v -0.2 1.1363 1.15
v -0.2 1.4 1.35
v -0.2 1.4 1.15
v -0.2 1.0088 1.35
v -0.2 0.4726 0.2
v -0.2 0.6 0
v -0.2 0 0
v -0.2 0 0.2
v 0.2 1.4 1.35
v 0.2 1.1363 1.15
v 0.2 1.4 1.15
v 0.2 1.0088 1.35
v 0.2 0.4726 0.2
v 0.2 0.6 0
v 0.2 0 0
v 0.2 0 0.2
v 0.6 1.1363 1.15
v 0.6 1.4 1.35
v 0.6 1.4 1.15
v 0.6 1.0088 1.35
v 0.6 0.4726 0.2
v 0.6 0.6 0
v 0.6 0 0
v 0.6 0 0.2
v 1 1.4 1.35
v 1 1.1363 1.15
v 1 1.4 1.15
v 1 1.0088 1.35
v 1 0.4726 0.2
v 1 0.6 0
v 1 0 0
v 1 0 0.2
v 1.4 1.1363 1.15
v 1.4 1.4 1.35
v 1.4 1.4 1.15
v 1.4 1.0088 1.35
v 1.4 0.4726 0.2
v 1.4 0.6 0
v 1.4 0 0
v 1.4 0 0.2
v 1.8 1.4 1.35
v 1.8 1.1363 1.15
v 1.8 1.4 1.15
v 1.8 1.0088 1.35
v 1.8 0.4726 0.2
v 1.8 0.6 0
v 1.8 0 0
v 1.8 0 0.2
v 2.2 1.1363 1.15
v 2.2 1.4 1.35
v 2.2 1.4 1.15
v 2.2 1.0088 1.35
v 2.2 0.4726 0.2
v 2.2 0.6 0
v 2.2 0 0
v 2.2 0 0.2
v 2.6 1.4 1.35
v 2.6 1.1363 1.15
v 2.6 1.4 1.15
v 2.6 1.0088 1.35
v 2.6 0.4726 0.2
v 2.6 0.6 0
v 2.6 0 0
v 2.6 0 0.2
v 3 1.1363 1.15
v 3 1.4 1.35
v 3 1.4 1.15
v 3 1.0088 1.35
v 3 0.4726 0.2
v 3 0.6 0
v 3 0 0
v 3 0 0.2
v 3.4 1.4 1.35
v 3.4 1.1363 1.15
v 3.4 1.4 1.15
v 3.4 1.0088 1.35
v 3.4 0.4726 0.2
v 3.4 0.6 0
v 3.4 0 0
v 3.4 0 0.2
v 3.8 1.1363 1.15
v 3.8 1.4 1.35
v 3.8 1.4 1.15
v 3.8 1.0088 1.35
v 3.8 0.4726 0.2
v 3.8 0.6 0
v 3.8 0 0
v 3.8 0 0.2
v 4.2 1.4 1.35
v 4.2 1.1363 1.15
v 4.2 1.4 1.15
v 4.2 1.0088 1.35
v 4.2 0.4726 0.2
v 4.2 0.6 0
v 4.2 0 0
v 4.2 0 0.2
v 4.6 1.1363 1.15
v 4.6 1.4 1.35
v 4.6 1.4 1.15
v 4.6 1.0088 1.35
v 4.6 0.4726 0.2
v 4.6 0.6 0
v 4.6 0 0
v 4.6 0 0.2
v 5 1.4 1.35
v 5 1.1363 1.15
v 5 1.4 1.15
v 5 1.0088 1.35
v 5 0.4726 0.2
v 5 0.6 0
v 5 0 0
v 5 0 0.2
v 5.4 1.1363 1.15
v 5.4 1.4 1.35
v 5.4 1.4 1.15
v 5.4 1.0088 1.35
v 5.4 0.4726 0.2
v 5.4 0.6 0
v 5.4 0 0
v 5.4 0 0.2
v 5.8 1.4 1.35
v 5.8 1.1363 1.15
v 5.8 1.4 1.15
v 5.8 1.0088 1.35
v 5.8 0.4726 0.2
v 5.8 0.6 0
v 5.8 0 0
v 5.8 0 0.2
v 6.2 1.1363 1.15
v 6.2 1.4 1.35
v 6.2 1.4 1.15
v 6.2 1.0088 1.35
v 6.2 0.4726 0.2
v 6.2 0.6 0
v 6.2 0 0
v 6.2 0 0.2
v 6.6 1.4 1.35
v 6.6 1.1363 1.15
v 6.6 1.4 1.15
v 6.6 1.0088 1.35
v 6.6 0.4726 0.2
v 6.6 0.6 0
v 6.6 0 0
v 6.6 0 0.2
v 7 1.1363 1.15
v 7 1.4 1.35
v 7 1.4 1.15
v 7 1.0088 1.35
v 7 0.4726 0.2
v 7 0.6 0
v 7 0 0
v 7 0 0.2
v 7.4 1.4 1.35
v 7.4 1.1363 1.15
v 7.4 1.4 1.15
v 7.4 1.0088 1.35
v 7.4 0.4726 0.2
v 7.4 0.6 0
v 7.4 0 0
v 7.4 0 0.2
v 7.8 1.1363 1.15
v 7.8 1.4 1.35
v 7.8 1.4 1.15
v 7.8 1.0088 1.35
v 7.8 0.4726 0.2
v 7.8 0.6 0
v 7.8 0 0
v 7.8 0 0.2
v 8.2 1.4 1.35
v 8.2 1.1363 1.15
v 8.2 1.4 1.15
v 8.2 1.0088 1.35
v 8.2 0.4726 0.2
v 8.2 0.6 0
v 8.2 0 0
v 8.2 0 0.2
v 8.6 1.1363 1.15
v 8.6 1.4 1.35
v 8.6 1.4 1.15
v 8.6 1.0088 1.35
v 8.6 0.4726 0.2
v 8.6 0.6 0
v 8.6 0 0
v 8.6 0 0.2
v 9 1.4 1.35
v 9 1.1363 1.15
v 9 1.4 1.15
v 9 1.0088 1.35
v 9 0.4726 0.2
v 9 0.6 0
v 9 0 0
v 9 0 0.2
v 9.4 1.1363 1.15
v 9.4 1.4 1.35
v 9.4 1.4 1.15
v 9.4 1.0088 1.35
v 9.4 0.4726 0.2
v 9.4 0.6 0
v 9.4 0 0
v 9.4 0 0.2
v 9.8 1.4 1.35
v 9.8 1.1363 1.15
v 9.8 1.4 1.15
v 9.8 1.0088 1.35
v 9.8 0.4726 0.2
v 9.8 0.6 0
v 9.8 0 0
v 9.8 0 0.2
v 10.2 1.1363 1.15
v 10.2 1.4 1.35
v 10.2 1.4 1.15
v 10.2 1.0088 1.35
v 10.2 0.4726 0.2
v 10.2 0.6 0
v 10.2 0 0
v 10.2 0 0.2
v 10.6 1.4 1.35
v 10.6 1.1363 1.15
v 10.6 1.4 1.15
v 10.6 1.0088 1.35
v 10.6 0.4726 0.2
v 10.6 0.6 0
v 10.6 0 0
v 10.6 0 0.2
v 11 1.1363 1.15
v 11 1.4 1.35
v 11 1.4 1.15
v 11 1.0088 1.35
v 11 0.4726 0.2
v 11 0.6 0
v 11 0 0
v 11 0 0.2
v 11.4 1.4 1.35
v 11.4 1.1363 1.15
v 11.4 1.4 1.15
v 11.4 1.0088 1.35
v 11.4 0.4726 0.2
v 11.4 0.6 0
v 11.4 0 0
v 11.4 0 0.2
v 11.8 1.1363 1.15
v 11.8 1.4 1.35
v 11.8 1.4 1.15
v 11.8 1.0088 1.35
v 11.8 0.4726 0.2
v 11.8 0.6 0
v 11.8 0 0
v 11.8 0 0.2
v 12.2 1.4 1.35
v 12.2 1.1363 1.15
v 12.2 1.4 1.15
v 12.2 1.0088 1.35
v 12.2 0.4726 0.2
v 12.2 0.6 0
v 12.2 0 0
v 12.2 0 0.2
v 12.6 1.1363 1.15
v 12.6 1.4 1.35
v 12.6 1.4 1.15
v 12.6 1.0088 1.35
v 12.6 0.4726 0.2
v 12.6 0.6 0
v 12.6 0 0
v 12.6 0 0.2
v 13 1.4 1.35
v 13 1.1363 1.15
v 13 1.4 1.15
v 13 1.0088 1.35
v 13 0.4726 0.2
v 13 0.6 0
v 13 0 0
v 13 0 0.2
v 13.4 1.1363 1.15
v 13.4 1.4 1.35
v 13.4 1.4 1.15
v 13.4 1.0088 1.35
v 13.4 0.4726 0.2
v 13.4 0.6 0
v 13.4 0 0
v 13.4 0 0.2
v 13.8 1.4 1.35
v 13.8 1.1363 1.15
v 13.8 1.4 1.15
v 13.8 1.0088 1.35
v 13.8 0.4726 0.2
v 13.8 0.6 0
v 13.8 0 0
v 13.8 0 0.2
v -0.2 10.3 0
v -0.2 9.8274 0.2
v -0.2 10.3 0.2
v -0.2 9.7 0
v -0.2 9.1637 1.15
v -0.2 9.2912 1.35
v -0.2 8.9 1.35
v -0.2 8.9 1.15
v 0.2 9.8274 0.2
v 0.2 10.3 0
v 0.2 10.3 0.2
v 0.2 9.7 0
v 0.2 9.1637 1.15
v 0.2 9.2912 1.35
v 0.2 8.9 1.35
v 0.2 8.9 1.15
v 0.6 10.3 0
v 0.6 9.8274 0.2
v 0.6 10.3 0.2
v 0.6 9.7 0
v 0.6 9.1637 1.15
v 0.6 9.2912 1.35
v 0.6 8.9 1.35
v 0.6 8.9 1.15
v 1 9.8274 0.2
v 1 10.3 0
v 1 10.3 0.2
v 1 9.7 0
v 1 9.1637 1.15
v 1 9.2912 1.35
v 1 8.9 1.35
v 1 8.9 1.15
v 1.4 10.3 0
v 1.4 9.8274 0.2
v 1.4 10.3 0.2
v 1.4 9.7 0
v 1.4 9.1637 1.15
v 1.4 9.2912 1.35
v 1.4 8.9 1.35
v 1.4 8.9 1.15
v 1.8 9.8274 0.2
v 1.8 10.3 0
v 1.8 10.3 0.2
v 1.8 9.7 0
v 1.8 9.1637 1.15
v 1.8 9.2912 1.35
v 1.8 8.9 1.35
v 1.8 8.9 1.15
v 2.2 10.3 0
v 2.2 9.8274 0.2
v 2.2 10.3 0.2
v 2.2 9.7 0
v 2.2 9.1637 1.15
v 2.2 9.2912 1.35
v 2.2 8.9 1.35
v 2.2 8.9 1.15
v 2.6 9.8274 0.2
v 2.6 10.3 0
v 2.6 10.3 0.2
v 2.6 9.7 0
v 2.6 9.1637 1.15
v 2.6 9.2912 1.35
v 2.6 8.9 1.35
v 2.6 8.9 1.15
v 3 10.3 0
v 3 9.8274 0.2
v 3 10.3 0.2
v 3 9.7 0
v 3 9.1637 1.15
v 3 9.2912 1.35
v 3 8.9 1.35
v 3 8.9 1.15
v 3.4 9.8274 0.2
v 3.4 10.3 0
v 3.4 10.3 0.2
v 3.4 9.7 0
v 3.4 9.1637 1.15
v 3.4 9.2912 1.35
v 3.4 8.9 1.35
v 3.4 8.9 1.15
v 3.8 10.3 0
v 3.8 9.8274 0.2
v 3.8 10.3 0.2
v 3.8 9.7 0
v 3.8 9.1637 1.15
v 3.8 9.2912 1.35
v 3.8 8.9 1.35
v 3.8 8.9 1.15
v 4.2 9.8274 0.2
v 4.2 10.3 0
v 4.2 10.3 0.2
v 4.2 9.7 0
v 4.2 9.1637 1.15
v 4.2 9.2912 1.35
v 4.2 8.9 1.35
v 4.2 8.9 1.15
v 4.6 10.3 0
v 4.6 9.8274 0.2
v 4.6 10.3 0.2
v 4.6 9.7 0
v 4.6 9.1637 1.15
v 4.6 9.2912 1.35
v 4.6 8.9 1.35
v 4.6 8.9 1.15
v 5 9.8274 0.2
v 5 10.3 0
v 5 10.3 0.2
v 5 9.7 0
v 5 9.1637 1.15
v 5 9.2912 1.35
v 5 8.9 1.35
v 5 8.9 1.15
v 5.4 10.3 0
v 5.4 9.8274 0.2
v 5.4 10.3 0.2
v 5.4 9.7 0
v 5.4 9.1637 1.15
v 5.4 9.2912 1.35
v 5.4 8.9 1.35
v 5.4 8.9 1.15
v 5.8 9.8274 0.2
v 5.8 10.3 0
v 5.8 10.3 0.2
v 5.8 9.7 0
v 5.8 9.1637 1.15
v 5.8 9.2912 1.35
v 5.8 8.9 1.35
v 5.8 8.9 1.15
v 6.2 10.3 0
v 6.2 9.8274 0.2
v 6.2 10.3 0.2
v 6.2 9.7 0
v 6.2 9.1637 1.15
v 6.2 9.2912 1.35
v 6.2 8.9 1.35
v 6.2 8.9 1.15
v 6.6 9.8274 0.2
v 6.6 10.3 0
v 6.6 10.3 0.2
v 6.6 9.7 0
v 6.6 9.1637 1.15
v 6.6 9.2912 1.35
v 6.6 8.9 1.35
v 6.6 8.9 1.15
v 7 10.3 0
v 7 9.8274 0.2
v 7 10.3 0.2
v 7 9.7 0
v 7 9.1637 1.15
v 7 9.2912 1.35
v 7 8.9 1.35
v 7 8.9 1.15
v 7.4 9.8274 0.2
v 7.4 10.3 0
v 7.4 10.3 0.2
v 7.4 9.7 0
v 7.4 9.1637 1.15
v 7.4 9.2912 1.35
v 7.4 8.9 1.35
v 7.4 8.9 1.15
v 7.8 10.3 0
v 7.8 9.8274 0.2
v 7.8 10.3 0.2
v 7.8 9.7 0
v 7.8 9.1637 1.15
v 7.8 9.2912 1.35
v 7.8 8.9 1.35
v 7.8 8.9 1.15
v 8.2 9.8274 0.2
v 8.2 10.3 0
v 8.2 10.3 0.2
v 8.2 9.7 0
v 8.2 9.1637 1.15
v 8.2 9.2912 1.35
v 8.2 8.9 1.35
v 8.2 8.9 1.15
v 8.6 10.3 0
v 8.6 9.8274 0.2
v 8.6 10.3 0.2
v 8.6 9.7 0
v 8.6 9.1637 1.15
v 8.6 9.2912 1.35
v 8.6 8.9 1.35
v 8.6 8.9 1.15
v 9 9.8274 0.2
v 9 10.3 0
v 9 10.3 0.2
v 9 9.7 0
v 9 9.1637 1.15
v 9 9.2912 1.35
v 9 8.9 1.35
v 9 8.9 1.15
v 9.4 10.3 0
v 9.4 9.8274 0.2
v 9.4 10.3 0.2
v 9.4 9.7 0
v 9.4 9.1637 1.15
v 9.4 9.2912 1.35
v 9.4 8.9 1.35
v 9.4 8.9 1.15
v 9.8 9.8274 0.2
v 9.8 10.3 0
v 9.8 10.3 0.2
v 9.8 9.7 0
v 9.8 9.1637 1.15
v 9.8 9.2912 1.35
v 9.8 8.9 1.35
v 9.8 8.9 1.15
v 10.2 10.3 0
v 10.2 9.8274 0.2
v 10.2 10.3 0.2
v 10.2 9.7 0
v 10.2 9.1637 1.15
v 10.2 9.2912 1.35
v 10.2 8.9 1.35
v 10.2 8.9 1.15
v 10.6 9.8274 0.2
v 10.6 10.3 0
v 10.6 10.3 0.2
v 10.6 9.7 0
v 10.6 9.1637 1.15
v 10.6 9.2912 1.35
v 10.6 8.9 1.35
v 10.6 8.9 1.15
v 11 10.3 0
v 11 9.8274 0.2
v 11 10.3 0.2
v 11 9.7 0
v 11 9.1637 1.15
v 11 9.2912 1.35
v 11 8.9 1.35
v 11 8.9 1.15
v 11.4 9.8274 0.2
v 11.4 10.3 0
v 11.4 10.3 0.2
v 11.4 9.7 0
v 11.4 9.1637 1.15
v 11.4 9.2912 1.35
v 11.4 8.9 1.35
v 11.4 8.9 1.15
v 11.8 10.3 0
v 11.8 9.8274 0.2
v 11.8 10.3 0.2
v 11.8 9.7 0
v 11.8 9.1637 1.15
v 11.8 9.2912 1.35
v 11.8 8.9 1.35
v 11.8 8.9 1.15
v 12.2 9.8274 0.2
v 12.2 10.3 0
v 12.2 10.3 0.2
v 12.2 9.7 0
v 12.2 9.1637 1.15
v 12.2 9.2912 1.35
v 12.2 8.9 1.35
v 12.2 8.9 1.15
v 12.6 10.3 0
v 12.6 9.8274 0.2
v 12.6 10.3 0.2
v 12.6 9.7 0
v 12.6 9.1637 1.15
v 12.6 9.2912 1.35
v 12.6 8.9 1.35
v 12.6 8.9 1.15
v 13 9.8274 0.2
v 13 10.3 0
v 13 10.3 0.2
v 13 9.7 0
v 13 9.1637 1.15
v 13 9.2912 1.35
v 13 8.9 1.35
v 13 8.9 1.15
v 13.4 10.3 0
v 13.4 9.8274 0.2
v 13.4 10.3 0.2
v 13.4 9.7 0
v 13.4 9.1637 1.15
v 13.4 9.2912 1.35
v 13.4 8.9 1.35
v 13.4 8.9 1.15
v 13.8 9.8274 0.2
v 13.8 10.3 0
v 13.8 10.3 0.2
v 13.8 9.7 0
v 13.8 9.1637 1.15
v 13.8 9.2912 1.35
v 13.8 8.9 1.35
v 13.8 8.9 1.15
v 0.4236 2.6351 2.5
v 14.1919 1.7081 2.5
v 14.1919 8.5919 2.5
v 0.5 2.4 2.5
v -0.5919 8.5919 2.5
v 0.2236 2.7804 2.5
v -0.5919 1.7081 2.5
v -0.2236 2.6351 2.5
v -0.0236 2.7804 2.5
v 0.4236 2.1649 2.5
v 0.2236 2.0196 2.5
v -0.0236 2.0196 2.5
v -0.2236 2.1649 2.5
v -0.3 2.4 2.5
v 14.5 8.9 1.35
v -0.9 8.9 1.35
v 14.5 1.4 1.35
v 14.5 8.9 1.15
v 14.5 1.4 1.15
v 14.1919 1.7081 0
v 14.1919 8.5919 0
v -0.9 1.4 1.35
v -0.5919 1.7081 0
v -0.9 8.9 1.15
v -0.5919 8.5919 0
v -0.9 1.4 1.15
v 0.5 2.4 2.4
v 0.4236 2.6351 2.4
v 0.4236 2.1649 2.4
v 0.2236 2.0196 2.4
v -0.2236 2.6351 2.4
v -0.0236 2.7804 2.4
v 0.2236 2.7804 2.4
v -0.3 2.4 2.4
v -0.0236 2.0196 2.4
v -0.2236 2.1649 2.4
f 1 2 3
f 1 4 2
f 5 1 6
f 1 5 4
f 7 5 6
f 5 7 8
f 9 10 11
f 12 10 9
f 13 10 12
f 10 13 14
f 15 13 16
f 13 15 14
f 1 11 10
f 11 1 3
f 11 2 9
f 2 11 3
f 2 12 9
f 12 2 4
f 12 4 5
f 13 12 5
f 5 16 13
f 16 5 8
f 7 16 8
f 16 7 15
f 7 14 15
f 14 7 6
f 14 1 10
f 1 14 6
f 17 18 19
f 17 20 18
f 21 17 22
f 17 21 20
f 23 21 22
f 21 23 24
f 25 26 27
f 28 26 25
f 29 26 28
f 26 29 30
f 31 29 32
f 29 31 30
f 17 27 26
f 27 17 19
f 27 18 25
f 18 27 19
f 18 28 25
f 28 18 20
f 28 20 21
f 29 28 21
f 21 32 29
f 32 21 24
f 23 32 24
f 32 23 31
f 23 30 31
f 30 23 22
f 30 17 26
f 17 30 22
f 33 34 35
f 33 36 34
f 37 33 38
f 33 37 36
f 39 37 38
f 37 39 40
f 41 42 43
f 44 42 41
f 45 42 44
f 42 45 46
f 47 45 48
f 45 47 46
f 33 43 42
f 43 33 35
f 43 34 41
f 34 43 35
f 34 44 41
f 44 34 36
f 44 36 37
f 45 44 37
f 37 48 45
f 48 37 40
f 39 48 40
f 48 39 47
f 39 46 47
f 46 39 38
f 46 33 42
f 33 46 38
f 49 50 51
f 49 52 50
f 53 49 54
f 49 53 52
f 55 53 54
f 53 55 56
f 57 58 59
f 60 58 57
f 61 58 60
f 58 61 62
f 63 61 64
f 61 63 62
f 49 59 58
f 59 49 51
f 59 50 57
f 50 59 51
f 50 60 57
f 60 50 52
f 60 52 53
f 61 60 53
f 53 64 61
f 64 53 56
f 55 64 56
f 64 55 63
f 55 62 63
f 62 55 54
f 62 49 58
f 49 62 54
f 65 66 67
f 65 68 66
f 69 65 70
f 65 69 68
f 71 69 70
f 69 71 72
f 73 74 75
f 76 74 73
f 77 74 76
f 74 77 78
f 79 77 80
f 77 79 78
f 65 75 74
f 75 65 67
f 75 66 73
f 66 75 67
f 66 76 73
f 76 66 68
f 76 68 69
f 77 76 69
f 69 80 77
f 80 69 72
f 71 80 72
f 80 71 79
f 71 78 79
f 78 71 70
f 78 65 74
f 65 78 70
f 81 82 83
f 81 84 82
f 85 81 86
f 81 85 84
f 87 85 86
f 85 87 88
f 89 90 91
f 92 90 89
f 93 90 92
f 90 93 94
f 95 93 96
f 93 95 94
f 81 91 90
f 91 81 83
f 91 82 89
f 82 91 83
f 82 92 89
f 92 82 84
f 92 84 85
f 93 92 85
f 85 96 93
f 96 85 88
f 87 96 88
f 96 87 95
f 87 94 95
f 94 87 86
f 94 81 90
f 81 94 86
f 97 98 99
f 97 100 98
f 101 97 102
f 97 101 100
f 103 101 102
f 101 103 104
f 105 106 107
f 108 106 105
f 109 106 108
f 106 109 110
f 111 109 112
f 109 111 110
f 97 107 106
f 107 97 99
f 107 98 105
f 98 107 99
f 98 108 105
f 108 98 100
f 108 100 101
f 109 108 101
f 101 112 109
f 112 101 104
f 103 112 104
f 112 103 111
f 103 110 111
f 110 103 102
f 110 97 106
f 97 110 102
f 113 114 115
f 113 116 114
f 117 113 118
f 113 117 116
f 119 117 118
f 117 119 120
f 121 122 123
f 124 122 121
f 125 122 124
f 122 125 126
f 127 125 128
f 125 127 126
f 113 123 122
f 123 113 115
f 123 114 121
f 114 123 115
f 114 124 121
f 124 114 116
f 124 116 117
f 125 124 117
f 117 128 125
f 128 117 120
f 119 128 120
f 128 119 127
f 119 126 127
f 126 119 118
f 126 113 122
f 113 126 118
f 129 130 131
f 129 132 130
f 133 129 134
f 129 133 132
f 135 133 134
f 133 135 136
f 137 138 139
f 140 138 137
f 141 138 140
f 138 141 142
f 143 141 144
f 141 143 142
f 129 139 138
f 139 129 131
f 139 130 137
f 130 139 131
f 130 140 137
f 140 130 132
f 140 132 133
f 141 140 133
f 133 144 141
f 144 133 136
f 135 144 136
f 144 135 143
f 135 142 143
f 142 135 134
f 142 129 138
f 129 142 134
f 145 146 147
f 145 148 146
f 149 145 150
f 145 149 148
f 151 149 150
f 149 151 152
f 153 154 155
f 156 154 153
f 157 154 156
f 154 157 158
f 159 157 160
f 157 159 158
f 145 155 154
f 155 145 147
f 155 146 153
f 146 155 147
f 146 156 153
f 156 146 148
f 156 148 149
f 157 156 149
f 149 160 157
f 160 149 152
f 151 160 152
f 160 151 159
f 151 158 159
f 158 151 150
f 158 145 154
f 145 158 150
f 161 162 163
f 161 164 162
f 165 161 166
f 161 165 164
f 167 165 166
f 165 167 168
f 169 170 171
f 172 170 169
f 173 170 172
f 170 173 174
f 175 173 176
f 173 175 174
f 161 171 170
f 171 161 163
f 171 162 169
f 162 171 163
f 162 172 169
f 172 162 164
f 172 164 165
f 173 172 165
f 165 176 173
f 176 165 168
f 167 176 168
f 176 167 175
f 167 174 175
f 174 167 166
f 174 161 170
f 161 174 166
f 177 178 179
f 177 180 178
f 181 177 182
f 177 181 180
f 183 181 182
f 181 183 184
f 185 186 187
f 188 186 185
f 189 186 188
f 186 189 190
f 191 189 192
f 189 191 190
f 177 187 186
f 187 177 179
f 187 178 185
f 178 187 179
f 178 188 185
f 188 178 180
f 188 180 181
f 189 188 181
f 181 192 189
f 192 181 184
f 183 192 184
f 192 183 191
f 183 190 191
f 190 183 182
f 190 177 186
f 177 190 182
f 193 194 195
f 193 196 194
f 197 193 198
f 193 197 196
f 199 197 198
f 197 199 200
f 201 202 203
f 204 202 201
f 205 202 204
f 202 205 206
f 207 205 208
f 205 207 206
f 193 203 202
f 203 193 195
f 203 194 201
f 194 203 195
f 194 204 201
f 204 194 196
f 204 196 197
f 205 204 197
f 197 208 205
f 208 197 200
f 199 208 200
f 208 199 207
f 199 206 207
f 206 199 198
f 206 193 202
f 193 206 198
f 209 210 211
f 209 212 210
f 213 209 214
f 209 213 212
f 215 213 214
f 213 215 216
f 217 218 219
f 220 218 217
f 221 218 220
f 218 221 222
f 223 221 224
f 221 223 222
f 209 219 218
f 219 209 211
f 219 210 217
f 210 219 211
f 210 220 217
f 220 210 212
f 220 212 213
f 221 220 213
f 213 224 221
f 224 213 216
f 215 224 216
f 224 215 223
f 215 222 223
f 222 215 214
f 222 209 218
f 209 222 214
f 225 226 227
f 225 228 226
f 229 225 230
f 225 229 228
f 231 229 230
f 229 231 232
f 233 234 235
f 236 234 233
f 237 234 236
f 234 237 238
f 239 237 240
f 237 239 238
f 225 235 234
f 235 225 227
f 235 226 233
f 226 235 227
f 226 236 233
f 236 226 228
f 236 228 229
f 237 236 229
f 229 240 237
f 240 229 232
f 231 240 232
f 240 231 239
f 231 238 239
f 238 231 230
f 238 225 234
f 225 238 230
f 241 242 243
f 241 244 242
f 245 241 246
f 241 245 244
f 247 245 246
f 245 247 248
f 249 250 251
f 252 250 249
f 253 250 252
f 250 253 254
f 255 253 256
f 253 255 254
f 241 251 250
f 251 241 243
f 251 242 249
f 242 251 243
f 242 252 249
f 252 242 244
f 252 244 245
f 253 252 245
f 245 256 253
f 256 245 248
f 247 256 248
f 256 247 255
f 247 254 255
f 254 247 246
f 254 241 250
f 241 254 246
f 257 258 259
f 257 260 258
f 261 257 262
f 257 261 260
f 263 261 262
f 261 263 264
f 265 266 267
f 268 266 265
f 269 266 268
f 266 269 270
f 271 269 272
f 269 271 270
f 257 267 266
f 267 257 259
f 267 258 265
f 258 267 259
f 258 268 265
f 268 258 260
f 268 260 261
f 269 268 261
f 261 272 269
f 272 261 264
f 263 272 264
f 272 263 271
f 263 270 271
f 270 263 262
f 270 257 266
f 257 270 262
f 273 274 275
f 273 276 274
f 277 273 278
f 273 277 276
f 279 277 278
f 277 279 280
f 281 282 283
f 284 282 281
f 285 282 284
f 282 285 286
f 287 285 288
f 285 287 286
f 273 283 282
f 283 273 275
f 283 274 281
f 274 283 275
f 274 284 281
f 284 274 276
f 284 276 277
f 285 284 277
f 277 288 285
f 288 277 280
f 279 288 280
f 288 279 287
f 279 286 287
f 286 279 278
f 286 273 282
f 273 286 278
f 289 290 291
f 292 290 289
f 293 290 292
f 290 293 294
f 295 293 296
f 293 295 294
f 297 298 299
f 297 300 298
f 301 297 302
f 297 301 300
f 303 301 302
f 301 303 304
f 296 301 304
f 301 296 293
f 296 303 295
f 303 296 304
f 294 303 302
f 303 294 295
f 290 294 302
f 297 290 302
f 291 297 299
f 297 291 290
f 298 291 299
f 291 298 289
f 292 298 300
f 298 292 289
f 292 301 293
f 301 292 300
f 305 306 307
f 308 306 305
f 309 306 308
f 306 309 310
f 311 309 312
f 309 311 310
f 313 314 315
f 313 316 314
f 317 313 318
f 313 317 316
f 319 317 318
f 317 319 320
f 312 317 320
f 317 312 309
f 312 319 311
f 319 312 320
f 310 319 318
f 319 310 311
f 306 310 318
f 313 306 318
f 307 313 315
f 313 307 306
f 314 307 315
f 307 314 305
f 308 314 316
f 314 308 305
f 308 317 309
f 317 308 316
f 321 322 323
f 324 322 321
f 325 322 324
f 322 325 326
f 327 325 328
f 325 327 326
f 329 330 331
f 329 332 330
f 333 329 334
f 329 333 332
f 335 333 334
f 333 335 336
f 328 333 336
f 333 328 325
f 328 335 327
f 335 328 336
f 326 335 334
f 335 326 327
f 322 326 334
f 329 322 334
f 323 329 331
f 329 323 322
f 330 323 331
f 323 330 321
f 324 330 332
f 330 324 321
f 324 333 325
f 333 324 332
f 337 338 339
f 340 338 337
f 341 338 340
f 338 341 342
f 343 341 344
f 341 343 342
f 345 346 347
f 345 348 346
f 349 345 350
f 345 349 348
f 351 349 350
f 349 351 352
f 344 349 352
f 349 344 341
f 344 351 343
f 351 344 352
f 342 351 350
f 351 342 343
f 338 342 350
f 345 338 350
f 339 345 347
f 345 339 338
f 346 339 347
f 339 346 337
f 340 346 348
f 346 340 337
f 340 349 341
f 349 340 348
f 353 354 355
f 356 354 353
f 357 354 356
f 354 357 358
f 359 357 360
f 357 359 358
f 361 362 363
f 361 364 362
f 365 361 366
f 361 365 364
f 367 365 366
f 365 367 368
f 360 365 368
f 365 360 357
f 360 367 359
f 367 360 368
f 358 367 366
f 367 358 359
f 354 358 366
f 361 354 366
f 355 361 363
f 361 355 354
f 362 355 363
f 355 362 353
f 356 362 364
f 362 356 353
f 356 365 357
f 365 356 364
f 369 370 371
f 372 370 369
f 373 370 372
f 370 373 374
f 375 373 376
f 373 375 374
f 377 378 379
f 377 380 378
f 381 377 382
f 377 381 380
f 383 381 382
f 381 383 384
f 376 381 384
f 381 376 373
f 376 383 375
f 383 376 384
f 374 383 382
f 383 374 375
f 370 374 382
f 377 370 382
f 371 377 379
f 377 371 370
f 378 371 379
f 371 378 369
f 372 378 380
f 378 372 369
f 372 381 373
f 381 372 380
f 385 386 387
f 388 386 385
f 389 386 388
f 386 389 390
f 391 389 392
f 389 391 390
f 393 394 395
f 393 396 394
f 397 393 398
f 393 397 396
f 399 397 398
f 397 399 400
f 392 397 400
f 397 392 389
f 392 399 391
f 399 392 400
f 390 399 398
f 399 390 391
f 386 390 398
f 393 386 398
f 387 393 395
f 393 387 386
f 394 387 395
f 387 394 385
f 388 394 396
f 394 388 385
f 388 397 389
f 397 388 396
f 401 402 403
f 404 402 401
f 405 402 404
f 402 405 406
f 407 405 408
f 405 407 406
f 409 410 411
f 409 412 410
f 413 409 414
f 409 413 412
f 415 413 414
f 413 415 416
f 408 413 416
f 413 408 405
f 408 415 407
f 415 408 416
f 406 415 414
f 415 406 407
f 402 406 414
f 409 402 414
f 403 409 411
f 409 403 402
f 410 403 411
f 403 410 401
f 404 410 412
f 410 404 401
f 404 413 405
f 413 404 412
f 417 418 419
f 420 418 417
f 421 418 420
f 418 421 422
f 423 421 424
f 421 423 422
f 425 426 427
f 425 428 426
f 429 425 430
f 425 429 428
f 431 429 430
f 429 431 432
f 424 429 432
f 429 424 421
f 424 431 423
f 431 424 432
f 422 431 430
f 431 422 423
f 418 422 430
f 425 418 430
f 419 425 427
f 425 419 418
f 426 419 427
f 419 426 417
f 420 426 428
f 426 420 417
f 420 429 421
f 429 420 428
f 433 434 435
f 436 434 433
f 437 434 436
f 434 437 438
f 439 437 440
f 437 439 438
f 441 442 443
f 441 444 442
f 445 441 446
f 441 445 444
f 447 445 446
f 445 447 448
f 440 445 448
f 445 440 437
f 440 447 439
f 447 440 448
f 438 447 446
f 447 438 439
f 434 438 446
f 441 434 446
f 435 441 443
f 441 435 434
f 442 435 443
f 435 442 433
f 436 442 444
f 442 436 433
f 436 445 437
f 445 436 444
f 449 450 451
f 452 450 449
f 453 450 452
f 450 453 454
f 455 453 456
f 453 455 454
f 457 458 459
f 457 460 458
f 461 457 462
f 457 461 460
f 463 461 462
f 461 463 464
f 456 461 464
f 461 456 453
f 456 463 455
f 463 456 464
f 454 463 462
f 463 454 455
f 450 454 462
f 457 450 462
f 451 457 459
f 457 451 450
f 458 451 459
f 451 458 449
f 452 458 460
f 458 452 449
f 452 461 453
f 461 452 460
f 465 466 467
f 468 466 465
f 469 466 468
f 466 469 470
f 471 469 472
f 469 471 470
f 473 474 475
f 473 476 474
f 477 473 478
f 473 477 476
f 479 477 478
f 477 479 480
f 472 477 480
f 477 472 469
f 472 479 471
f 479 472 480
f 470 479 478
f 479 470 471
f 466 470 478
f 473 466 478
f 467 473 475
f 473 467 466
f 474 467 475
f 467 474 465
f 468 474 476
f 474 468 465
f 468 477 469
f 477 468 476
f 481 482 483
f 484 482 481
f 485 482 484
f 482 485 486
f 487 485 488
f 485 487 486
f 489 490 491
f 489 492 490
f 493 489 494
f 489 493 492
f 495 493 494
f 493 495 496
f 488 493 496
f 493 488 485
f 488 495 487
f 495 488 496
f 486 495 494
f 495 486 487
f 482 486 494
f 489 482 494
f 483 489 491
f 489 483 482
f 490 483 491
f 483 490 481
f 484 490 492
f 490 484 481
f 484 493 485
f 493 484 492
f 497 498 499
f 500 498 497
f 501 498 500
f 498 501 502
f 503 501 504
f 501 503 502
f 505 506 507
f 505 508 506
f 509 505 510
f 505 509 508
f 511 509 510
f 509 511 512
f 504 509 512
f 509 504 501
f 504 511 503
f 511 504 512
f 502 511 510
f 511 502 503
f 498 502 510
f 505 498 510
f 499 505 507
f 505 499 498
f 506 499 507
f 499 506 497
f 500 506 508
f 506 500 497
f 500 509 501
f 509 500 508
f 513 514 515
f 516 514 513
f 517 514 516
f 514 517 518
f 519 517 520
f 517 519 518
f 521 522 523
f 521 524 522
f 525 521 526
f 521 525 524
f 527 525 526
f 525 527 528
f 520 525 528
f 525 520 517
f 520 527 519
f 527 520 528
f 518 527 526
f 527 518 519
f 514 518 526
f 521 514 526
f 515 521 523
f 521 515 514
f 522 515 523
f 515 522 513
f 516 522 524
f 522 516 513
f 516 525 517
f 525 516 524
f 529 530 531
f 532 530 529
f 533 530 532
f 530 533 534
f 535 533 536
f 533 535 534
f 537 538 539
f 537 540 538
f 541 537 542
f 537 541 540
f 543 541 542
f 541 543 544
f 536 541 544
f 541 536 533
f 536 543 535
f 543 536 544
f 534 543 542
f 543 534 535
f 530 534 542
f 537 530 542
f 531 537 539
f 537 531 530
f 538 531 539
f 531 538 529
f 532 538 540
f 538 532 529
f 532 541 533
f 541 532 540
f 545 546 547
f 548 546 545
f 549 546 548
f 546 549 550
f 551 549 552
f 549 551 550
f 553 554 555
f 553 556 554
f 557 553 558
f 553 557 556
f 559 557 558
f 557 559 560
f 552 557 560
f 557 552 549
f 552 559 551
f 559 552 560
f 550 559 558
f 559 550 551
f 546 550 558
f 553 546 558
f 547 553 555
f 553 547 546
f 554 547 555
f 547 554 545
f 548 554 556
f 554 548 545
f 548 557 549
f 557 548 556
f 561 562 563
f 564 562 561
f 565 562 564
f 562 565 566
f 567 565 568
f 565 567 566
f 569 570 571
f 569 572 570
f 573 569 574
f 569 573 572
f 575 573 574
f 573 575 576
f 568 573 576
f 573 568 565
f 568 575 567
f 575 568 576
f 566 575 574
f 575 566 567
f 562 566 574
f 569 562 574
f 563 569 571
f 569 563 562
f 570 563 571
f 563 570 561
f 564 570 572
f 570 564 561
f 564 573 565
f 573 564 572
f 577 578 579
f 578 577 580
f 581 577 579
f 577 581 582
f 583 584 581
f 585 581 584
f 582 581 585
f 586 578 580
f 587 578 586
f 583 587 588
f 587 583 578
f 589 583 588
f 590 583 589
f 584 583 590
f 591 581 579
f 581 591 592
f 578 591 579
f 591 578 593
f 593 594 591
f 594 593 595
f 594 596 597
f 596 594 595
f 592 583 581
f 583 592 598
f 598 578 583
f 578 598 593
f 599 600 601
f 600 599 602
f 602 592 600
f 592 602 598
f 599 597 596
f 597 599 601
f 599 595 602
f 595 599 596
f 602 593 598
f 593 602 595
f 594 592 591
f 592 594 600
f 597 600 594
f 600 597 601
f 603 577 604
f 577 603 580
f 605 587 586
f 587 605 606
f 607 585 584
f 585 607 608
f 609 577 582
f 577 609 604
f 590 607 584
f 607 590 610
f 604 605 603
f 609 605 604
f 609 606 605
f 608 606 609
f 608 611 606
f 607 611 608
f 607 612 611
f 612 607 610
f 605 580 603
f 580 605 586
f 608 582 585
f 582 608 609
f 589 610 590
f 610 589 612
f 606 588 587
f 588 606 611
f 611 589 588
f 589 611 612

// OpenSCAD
// file: pin.scad
// This module outputs bended pin
// _L - whole pin length
// _l - length of bottom part
// _H - whole pin height
// _th - pin thickness
// _a - bending angle
// _W - pin width
module pin(_L,_l,_H,_th,_a,_W)
{
	// Internal variables
    _d1 = _th*sin(_a) / (1-cos(_a));
    _d2 = (_th-_H)*cos(_a) / sin(_a);

	rotate([90,0,90])
    // Extrude the following polygon
	linear_extrude(height = _W, center = true, convexity = 10, twist = 0)
        polygon([[0,0],
                 [_l,0],
				 [_l+_d2,_H-_th],
				 [_L,_H-_th],
				 [_L,_H],
				 [_l+_d2-_d1,_H],
				 [_l-_d1,_th],
				 [0,_th]]);
}

// Example of usage
pin(2,1,1,0.2,115,0.5);
// file: case.scad
// This module draws case
// _L - case length
// _W - case width
// _H - case height
// _ph - top point (vertical) of pin connection area
// _pt - pin thickness
// _atl - case angle top left,
// _atr - case angle top right,
// _atu - case angle top up
// _atd - case angle top down
// _abl - case angle bottom left,
// _abr - case angle bottom right,
// _abu - case angle bottom up
// _abd - case angle bottom down
// _n_x - notch X position relative to case corner
// _n_y - notch Y position relative to case corner
// _n_d - notch diameter
// _n_z - notch_depth
module case(_L,_W,_H,_ph,_pt,_atl,_atr,_atu,_atd,_abl,_abr,_abu,_abd, _n_x, _n_y, _n_d, _n_z)
{
    _tth = _H - _ph;
    _bth = _ph - _pt;
    _dtl = _tth * cos(_atl) / sin(_atl);
    _dtr = _tth * cos(_atr) / sin(_atr);
    _dtu = _tth * cos(_atu) / sin(_atu);
    _dtd = _tth * cos(_atd) / sin(_atd);
    _dbl = _bth * cos(_abl) / sin(_abl);
    _dbr = _bth * cos(_abr) / sin(_abr);
    _dbu = _bth * cos(_abu) / sin(_abu);
    _dbd = _bth * cos(_abd) / sin(_abd);
	// Make case with notch - difference between case and small cylinder
    difference()
    {
        // This is our case
        polyhedron(
            points = [
                // top points
                [ 0 + _dtl, 0 + _dtd, _H],
                [_L - _dtr, 0 + _dtd, _H],
                [_L - _dtr,_W - _dtu, _H],
                [ 0 + _dtl,_W - _dtu, _H],
                // middle top points
                [ 0, 0,_ph],
                [_L, 0,_ph],
                [_L,_W,_ph],
                [ 0,_W,_ph],
                // middle bottom points
                [ 0, 0,_ph - _pt],
                [_L, 0,_ph - _pt],
                [_L,_W,_ph - _pt],
                [ 0,_W,_ph - _pt],
                // bottom points
                [ 0 + _dbl, 0 + _dbd, 0],
                [_L - _dbr, 0 + _dbd, 0],
                [_L - _dbr,_W - _dbu, 0],
                [ 0 + _dbl,_W - _dbu, 0]
            ],
            triangles = [
                // Top
                [ 0, 3, 2, 1],
                // Top sides
                [ 4, 0, 1, 5],
                [ 5, 1, 2, 6],
                [ 6, 2, 3, 7],
                [ 7, 3, 0, 4],
                // Middle sides
                [ 4, 5, 9, 8],
                [ 5, 6,10, 9],
                [ 6, 7,11,10],
                [ 7, 4, 8,11],
                // Bottom sides
                [12, 8, 9,13],
                [13, 9,10,14],
                [14,10,11,15],
                [15,11, 8,12],
                // Bottom
                [12,13,14,15]
            ]
        );
        // This is notch
        translate([_n_x,_n_y,_H])
            cylinder(r = _n_d/2, h = _n_z*2, center = true, $fn=10);
    }
}

// Example of usage
// case(10,5,1.5,0.7,0.3,80,80,80,80,45,45,45,45, 1,1,1);
// main file
use <case.scad>
use <pin.scad>

case_z = 2.5;
case_x = 15.4;
case_y = 7.5;
case_a = 75;

notch_d=0.8;
notch_depth=0.1;
notch_x=1;
notch_y=1;

side1_pins = 18;
side2_pins = 0;
side3_pins = 18;
side4_pins = 0;
pin_distance = 0.8;

pin_th = 0.2;
pin_W = 0.4;
pin_L = 1.4;
pin_H = case_z/2+pin_th/2;
pin_l = 0.6;
pin_a = 115;

// Array of pins
// _cnt - number of pins
// _distance - distance between pin centres
module pins_array(_cnt, _distance)
{
	if (_cnt>0)
	{
		for (_i = [0:_cnt-1])
		{
			translate([_distance*_i,0,0])
				pin(pin_L,pin_l,pin_H,pin_th,pin_a,pin_W);
		}
	}
}

// Complete model
union()
{
	// Top pins
	translate([(side1_pins-side3_pins)*pin_distance/2,case_y+pin_L*2,0])
		mirror([0,1,0])
			pins_array(side3_pins, pin_distance);

	// Bottom pins
	pins_array(side1_pins, pin_distance);

	// Left pins
	translate([-(case_x-(side1_pins-1)*pin_distance)/2 - pin_L,pin_L+case_y/2-(side4_pins-1)*pin_distance/2,0])
		mirror([1,0,0])
			rotate([0,0,90])
				pins_array(side4_pins, pin_distance);

	// Right pins
	translate([-(case_x-(side1_pins-1)*pin_distance)/2-pin_L+case_x+2*pin_L,pin_L+case_y/2-(side2_pins-1)*pin_distance/2,0])
		mirror([0,1,0])
			mirror([0,1,0])
				rotate([0,0,90])
					pins_array(side2_pins, pin_distance);

	// Case
	translate([-(case_x-(side1_pins-1)*pin_distance)/2,pin_L,0])
		case(case_x,case_y,case_z,pin_H,pin_th,case_a,case_a,case_a,case_a,case_a,case_a,case_a,case_a, notch_x,notch_y,notch_d,notch_depth);
}
